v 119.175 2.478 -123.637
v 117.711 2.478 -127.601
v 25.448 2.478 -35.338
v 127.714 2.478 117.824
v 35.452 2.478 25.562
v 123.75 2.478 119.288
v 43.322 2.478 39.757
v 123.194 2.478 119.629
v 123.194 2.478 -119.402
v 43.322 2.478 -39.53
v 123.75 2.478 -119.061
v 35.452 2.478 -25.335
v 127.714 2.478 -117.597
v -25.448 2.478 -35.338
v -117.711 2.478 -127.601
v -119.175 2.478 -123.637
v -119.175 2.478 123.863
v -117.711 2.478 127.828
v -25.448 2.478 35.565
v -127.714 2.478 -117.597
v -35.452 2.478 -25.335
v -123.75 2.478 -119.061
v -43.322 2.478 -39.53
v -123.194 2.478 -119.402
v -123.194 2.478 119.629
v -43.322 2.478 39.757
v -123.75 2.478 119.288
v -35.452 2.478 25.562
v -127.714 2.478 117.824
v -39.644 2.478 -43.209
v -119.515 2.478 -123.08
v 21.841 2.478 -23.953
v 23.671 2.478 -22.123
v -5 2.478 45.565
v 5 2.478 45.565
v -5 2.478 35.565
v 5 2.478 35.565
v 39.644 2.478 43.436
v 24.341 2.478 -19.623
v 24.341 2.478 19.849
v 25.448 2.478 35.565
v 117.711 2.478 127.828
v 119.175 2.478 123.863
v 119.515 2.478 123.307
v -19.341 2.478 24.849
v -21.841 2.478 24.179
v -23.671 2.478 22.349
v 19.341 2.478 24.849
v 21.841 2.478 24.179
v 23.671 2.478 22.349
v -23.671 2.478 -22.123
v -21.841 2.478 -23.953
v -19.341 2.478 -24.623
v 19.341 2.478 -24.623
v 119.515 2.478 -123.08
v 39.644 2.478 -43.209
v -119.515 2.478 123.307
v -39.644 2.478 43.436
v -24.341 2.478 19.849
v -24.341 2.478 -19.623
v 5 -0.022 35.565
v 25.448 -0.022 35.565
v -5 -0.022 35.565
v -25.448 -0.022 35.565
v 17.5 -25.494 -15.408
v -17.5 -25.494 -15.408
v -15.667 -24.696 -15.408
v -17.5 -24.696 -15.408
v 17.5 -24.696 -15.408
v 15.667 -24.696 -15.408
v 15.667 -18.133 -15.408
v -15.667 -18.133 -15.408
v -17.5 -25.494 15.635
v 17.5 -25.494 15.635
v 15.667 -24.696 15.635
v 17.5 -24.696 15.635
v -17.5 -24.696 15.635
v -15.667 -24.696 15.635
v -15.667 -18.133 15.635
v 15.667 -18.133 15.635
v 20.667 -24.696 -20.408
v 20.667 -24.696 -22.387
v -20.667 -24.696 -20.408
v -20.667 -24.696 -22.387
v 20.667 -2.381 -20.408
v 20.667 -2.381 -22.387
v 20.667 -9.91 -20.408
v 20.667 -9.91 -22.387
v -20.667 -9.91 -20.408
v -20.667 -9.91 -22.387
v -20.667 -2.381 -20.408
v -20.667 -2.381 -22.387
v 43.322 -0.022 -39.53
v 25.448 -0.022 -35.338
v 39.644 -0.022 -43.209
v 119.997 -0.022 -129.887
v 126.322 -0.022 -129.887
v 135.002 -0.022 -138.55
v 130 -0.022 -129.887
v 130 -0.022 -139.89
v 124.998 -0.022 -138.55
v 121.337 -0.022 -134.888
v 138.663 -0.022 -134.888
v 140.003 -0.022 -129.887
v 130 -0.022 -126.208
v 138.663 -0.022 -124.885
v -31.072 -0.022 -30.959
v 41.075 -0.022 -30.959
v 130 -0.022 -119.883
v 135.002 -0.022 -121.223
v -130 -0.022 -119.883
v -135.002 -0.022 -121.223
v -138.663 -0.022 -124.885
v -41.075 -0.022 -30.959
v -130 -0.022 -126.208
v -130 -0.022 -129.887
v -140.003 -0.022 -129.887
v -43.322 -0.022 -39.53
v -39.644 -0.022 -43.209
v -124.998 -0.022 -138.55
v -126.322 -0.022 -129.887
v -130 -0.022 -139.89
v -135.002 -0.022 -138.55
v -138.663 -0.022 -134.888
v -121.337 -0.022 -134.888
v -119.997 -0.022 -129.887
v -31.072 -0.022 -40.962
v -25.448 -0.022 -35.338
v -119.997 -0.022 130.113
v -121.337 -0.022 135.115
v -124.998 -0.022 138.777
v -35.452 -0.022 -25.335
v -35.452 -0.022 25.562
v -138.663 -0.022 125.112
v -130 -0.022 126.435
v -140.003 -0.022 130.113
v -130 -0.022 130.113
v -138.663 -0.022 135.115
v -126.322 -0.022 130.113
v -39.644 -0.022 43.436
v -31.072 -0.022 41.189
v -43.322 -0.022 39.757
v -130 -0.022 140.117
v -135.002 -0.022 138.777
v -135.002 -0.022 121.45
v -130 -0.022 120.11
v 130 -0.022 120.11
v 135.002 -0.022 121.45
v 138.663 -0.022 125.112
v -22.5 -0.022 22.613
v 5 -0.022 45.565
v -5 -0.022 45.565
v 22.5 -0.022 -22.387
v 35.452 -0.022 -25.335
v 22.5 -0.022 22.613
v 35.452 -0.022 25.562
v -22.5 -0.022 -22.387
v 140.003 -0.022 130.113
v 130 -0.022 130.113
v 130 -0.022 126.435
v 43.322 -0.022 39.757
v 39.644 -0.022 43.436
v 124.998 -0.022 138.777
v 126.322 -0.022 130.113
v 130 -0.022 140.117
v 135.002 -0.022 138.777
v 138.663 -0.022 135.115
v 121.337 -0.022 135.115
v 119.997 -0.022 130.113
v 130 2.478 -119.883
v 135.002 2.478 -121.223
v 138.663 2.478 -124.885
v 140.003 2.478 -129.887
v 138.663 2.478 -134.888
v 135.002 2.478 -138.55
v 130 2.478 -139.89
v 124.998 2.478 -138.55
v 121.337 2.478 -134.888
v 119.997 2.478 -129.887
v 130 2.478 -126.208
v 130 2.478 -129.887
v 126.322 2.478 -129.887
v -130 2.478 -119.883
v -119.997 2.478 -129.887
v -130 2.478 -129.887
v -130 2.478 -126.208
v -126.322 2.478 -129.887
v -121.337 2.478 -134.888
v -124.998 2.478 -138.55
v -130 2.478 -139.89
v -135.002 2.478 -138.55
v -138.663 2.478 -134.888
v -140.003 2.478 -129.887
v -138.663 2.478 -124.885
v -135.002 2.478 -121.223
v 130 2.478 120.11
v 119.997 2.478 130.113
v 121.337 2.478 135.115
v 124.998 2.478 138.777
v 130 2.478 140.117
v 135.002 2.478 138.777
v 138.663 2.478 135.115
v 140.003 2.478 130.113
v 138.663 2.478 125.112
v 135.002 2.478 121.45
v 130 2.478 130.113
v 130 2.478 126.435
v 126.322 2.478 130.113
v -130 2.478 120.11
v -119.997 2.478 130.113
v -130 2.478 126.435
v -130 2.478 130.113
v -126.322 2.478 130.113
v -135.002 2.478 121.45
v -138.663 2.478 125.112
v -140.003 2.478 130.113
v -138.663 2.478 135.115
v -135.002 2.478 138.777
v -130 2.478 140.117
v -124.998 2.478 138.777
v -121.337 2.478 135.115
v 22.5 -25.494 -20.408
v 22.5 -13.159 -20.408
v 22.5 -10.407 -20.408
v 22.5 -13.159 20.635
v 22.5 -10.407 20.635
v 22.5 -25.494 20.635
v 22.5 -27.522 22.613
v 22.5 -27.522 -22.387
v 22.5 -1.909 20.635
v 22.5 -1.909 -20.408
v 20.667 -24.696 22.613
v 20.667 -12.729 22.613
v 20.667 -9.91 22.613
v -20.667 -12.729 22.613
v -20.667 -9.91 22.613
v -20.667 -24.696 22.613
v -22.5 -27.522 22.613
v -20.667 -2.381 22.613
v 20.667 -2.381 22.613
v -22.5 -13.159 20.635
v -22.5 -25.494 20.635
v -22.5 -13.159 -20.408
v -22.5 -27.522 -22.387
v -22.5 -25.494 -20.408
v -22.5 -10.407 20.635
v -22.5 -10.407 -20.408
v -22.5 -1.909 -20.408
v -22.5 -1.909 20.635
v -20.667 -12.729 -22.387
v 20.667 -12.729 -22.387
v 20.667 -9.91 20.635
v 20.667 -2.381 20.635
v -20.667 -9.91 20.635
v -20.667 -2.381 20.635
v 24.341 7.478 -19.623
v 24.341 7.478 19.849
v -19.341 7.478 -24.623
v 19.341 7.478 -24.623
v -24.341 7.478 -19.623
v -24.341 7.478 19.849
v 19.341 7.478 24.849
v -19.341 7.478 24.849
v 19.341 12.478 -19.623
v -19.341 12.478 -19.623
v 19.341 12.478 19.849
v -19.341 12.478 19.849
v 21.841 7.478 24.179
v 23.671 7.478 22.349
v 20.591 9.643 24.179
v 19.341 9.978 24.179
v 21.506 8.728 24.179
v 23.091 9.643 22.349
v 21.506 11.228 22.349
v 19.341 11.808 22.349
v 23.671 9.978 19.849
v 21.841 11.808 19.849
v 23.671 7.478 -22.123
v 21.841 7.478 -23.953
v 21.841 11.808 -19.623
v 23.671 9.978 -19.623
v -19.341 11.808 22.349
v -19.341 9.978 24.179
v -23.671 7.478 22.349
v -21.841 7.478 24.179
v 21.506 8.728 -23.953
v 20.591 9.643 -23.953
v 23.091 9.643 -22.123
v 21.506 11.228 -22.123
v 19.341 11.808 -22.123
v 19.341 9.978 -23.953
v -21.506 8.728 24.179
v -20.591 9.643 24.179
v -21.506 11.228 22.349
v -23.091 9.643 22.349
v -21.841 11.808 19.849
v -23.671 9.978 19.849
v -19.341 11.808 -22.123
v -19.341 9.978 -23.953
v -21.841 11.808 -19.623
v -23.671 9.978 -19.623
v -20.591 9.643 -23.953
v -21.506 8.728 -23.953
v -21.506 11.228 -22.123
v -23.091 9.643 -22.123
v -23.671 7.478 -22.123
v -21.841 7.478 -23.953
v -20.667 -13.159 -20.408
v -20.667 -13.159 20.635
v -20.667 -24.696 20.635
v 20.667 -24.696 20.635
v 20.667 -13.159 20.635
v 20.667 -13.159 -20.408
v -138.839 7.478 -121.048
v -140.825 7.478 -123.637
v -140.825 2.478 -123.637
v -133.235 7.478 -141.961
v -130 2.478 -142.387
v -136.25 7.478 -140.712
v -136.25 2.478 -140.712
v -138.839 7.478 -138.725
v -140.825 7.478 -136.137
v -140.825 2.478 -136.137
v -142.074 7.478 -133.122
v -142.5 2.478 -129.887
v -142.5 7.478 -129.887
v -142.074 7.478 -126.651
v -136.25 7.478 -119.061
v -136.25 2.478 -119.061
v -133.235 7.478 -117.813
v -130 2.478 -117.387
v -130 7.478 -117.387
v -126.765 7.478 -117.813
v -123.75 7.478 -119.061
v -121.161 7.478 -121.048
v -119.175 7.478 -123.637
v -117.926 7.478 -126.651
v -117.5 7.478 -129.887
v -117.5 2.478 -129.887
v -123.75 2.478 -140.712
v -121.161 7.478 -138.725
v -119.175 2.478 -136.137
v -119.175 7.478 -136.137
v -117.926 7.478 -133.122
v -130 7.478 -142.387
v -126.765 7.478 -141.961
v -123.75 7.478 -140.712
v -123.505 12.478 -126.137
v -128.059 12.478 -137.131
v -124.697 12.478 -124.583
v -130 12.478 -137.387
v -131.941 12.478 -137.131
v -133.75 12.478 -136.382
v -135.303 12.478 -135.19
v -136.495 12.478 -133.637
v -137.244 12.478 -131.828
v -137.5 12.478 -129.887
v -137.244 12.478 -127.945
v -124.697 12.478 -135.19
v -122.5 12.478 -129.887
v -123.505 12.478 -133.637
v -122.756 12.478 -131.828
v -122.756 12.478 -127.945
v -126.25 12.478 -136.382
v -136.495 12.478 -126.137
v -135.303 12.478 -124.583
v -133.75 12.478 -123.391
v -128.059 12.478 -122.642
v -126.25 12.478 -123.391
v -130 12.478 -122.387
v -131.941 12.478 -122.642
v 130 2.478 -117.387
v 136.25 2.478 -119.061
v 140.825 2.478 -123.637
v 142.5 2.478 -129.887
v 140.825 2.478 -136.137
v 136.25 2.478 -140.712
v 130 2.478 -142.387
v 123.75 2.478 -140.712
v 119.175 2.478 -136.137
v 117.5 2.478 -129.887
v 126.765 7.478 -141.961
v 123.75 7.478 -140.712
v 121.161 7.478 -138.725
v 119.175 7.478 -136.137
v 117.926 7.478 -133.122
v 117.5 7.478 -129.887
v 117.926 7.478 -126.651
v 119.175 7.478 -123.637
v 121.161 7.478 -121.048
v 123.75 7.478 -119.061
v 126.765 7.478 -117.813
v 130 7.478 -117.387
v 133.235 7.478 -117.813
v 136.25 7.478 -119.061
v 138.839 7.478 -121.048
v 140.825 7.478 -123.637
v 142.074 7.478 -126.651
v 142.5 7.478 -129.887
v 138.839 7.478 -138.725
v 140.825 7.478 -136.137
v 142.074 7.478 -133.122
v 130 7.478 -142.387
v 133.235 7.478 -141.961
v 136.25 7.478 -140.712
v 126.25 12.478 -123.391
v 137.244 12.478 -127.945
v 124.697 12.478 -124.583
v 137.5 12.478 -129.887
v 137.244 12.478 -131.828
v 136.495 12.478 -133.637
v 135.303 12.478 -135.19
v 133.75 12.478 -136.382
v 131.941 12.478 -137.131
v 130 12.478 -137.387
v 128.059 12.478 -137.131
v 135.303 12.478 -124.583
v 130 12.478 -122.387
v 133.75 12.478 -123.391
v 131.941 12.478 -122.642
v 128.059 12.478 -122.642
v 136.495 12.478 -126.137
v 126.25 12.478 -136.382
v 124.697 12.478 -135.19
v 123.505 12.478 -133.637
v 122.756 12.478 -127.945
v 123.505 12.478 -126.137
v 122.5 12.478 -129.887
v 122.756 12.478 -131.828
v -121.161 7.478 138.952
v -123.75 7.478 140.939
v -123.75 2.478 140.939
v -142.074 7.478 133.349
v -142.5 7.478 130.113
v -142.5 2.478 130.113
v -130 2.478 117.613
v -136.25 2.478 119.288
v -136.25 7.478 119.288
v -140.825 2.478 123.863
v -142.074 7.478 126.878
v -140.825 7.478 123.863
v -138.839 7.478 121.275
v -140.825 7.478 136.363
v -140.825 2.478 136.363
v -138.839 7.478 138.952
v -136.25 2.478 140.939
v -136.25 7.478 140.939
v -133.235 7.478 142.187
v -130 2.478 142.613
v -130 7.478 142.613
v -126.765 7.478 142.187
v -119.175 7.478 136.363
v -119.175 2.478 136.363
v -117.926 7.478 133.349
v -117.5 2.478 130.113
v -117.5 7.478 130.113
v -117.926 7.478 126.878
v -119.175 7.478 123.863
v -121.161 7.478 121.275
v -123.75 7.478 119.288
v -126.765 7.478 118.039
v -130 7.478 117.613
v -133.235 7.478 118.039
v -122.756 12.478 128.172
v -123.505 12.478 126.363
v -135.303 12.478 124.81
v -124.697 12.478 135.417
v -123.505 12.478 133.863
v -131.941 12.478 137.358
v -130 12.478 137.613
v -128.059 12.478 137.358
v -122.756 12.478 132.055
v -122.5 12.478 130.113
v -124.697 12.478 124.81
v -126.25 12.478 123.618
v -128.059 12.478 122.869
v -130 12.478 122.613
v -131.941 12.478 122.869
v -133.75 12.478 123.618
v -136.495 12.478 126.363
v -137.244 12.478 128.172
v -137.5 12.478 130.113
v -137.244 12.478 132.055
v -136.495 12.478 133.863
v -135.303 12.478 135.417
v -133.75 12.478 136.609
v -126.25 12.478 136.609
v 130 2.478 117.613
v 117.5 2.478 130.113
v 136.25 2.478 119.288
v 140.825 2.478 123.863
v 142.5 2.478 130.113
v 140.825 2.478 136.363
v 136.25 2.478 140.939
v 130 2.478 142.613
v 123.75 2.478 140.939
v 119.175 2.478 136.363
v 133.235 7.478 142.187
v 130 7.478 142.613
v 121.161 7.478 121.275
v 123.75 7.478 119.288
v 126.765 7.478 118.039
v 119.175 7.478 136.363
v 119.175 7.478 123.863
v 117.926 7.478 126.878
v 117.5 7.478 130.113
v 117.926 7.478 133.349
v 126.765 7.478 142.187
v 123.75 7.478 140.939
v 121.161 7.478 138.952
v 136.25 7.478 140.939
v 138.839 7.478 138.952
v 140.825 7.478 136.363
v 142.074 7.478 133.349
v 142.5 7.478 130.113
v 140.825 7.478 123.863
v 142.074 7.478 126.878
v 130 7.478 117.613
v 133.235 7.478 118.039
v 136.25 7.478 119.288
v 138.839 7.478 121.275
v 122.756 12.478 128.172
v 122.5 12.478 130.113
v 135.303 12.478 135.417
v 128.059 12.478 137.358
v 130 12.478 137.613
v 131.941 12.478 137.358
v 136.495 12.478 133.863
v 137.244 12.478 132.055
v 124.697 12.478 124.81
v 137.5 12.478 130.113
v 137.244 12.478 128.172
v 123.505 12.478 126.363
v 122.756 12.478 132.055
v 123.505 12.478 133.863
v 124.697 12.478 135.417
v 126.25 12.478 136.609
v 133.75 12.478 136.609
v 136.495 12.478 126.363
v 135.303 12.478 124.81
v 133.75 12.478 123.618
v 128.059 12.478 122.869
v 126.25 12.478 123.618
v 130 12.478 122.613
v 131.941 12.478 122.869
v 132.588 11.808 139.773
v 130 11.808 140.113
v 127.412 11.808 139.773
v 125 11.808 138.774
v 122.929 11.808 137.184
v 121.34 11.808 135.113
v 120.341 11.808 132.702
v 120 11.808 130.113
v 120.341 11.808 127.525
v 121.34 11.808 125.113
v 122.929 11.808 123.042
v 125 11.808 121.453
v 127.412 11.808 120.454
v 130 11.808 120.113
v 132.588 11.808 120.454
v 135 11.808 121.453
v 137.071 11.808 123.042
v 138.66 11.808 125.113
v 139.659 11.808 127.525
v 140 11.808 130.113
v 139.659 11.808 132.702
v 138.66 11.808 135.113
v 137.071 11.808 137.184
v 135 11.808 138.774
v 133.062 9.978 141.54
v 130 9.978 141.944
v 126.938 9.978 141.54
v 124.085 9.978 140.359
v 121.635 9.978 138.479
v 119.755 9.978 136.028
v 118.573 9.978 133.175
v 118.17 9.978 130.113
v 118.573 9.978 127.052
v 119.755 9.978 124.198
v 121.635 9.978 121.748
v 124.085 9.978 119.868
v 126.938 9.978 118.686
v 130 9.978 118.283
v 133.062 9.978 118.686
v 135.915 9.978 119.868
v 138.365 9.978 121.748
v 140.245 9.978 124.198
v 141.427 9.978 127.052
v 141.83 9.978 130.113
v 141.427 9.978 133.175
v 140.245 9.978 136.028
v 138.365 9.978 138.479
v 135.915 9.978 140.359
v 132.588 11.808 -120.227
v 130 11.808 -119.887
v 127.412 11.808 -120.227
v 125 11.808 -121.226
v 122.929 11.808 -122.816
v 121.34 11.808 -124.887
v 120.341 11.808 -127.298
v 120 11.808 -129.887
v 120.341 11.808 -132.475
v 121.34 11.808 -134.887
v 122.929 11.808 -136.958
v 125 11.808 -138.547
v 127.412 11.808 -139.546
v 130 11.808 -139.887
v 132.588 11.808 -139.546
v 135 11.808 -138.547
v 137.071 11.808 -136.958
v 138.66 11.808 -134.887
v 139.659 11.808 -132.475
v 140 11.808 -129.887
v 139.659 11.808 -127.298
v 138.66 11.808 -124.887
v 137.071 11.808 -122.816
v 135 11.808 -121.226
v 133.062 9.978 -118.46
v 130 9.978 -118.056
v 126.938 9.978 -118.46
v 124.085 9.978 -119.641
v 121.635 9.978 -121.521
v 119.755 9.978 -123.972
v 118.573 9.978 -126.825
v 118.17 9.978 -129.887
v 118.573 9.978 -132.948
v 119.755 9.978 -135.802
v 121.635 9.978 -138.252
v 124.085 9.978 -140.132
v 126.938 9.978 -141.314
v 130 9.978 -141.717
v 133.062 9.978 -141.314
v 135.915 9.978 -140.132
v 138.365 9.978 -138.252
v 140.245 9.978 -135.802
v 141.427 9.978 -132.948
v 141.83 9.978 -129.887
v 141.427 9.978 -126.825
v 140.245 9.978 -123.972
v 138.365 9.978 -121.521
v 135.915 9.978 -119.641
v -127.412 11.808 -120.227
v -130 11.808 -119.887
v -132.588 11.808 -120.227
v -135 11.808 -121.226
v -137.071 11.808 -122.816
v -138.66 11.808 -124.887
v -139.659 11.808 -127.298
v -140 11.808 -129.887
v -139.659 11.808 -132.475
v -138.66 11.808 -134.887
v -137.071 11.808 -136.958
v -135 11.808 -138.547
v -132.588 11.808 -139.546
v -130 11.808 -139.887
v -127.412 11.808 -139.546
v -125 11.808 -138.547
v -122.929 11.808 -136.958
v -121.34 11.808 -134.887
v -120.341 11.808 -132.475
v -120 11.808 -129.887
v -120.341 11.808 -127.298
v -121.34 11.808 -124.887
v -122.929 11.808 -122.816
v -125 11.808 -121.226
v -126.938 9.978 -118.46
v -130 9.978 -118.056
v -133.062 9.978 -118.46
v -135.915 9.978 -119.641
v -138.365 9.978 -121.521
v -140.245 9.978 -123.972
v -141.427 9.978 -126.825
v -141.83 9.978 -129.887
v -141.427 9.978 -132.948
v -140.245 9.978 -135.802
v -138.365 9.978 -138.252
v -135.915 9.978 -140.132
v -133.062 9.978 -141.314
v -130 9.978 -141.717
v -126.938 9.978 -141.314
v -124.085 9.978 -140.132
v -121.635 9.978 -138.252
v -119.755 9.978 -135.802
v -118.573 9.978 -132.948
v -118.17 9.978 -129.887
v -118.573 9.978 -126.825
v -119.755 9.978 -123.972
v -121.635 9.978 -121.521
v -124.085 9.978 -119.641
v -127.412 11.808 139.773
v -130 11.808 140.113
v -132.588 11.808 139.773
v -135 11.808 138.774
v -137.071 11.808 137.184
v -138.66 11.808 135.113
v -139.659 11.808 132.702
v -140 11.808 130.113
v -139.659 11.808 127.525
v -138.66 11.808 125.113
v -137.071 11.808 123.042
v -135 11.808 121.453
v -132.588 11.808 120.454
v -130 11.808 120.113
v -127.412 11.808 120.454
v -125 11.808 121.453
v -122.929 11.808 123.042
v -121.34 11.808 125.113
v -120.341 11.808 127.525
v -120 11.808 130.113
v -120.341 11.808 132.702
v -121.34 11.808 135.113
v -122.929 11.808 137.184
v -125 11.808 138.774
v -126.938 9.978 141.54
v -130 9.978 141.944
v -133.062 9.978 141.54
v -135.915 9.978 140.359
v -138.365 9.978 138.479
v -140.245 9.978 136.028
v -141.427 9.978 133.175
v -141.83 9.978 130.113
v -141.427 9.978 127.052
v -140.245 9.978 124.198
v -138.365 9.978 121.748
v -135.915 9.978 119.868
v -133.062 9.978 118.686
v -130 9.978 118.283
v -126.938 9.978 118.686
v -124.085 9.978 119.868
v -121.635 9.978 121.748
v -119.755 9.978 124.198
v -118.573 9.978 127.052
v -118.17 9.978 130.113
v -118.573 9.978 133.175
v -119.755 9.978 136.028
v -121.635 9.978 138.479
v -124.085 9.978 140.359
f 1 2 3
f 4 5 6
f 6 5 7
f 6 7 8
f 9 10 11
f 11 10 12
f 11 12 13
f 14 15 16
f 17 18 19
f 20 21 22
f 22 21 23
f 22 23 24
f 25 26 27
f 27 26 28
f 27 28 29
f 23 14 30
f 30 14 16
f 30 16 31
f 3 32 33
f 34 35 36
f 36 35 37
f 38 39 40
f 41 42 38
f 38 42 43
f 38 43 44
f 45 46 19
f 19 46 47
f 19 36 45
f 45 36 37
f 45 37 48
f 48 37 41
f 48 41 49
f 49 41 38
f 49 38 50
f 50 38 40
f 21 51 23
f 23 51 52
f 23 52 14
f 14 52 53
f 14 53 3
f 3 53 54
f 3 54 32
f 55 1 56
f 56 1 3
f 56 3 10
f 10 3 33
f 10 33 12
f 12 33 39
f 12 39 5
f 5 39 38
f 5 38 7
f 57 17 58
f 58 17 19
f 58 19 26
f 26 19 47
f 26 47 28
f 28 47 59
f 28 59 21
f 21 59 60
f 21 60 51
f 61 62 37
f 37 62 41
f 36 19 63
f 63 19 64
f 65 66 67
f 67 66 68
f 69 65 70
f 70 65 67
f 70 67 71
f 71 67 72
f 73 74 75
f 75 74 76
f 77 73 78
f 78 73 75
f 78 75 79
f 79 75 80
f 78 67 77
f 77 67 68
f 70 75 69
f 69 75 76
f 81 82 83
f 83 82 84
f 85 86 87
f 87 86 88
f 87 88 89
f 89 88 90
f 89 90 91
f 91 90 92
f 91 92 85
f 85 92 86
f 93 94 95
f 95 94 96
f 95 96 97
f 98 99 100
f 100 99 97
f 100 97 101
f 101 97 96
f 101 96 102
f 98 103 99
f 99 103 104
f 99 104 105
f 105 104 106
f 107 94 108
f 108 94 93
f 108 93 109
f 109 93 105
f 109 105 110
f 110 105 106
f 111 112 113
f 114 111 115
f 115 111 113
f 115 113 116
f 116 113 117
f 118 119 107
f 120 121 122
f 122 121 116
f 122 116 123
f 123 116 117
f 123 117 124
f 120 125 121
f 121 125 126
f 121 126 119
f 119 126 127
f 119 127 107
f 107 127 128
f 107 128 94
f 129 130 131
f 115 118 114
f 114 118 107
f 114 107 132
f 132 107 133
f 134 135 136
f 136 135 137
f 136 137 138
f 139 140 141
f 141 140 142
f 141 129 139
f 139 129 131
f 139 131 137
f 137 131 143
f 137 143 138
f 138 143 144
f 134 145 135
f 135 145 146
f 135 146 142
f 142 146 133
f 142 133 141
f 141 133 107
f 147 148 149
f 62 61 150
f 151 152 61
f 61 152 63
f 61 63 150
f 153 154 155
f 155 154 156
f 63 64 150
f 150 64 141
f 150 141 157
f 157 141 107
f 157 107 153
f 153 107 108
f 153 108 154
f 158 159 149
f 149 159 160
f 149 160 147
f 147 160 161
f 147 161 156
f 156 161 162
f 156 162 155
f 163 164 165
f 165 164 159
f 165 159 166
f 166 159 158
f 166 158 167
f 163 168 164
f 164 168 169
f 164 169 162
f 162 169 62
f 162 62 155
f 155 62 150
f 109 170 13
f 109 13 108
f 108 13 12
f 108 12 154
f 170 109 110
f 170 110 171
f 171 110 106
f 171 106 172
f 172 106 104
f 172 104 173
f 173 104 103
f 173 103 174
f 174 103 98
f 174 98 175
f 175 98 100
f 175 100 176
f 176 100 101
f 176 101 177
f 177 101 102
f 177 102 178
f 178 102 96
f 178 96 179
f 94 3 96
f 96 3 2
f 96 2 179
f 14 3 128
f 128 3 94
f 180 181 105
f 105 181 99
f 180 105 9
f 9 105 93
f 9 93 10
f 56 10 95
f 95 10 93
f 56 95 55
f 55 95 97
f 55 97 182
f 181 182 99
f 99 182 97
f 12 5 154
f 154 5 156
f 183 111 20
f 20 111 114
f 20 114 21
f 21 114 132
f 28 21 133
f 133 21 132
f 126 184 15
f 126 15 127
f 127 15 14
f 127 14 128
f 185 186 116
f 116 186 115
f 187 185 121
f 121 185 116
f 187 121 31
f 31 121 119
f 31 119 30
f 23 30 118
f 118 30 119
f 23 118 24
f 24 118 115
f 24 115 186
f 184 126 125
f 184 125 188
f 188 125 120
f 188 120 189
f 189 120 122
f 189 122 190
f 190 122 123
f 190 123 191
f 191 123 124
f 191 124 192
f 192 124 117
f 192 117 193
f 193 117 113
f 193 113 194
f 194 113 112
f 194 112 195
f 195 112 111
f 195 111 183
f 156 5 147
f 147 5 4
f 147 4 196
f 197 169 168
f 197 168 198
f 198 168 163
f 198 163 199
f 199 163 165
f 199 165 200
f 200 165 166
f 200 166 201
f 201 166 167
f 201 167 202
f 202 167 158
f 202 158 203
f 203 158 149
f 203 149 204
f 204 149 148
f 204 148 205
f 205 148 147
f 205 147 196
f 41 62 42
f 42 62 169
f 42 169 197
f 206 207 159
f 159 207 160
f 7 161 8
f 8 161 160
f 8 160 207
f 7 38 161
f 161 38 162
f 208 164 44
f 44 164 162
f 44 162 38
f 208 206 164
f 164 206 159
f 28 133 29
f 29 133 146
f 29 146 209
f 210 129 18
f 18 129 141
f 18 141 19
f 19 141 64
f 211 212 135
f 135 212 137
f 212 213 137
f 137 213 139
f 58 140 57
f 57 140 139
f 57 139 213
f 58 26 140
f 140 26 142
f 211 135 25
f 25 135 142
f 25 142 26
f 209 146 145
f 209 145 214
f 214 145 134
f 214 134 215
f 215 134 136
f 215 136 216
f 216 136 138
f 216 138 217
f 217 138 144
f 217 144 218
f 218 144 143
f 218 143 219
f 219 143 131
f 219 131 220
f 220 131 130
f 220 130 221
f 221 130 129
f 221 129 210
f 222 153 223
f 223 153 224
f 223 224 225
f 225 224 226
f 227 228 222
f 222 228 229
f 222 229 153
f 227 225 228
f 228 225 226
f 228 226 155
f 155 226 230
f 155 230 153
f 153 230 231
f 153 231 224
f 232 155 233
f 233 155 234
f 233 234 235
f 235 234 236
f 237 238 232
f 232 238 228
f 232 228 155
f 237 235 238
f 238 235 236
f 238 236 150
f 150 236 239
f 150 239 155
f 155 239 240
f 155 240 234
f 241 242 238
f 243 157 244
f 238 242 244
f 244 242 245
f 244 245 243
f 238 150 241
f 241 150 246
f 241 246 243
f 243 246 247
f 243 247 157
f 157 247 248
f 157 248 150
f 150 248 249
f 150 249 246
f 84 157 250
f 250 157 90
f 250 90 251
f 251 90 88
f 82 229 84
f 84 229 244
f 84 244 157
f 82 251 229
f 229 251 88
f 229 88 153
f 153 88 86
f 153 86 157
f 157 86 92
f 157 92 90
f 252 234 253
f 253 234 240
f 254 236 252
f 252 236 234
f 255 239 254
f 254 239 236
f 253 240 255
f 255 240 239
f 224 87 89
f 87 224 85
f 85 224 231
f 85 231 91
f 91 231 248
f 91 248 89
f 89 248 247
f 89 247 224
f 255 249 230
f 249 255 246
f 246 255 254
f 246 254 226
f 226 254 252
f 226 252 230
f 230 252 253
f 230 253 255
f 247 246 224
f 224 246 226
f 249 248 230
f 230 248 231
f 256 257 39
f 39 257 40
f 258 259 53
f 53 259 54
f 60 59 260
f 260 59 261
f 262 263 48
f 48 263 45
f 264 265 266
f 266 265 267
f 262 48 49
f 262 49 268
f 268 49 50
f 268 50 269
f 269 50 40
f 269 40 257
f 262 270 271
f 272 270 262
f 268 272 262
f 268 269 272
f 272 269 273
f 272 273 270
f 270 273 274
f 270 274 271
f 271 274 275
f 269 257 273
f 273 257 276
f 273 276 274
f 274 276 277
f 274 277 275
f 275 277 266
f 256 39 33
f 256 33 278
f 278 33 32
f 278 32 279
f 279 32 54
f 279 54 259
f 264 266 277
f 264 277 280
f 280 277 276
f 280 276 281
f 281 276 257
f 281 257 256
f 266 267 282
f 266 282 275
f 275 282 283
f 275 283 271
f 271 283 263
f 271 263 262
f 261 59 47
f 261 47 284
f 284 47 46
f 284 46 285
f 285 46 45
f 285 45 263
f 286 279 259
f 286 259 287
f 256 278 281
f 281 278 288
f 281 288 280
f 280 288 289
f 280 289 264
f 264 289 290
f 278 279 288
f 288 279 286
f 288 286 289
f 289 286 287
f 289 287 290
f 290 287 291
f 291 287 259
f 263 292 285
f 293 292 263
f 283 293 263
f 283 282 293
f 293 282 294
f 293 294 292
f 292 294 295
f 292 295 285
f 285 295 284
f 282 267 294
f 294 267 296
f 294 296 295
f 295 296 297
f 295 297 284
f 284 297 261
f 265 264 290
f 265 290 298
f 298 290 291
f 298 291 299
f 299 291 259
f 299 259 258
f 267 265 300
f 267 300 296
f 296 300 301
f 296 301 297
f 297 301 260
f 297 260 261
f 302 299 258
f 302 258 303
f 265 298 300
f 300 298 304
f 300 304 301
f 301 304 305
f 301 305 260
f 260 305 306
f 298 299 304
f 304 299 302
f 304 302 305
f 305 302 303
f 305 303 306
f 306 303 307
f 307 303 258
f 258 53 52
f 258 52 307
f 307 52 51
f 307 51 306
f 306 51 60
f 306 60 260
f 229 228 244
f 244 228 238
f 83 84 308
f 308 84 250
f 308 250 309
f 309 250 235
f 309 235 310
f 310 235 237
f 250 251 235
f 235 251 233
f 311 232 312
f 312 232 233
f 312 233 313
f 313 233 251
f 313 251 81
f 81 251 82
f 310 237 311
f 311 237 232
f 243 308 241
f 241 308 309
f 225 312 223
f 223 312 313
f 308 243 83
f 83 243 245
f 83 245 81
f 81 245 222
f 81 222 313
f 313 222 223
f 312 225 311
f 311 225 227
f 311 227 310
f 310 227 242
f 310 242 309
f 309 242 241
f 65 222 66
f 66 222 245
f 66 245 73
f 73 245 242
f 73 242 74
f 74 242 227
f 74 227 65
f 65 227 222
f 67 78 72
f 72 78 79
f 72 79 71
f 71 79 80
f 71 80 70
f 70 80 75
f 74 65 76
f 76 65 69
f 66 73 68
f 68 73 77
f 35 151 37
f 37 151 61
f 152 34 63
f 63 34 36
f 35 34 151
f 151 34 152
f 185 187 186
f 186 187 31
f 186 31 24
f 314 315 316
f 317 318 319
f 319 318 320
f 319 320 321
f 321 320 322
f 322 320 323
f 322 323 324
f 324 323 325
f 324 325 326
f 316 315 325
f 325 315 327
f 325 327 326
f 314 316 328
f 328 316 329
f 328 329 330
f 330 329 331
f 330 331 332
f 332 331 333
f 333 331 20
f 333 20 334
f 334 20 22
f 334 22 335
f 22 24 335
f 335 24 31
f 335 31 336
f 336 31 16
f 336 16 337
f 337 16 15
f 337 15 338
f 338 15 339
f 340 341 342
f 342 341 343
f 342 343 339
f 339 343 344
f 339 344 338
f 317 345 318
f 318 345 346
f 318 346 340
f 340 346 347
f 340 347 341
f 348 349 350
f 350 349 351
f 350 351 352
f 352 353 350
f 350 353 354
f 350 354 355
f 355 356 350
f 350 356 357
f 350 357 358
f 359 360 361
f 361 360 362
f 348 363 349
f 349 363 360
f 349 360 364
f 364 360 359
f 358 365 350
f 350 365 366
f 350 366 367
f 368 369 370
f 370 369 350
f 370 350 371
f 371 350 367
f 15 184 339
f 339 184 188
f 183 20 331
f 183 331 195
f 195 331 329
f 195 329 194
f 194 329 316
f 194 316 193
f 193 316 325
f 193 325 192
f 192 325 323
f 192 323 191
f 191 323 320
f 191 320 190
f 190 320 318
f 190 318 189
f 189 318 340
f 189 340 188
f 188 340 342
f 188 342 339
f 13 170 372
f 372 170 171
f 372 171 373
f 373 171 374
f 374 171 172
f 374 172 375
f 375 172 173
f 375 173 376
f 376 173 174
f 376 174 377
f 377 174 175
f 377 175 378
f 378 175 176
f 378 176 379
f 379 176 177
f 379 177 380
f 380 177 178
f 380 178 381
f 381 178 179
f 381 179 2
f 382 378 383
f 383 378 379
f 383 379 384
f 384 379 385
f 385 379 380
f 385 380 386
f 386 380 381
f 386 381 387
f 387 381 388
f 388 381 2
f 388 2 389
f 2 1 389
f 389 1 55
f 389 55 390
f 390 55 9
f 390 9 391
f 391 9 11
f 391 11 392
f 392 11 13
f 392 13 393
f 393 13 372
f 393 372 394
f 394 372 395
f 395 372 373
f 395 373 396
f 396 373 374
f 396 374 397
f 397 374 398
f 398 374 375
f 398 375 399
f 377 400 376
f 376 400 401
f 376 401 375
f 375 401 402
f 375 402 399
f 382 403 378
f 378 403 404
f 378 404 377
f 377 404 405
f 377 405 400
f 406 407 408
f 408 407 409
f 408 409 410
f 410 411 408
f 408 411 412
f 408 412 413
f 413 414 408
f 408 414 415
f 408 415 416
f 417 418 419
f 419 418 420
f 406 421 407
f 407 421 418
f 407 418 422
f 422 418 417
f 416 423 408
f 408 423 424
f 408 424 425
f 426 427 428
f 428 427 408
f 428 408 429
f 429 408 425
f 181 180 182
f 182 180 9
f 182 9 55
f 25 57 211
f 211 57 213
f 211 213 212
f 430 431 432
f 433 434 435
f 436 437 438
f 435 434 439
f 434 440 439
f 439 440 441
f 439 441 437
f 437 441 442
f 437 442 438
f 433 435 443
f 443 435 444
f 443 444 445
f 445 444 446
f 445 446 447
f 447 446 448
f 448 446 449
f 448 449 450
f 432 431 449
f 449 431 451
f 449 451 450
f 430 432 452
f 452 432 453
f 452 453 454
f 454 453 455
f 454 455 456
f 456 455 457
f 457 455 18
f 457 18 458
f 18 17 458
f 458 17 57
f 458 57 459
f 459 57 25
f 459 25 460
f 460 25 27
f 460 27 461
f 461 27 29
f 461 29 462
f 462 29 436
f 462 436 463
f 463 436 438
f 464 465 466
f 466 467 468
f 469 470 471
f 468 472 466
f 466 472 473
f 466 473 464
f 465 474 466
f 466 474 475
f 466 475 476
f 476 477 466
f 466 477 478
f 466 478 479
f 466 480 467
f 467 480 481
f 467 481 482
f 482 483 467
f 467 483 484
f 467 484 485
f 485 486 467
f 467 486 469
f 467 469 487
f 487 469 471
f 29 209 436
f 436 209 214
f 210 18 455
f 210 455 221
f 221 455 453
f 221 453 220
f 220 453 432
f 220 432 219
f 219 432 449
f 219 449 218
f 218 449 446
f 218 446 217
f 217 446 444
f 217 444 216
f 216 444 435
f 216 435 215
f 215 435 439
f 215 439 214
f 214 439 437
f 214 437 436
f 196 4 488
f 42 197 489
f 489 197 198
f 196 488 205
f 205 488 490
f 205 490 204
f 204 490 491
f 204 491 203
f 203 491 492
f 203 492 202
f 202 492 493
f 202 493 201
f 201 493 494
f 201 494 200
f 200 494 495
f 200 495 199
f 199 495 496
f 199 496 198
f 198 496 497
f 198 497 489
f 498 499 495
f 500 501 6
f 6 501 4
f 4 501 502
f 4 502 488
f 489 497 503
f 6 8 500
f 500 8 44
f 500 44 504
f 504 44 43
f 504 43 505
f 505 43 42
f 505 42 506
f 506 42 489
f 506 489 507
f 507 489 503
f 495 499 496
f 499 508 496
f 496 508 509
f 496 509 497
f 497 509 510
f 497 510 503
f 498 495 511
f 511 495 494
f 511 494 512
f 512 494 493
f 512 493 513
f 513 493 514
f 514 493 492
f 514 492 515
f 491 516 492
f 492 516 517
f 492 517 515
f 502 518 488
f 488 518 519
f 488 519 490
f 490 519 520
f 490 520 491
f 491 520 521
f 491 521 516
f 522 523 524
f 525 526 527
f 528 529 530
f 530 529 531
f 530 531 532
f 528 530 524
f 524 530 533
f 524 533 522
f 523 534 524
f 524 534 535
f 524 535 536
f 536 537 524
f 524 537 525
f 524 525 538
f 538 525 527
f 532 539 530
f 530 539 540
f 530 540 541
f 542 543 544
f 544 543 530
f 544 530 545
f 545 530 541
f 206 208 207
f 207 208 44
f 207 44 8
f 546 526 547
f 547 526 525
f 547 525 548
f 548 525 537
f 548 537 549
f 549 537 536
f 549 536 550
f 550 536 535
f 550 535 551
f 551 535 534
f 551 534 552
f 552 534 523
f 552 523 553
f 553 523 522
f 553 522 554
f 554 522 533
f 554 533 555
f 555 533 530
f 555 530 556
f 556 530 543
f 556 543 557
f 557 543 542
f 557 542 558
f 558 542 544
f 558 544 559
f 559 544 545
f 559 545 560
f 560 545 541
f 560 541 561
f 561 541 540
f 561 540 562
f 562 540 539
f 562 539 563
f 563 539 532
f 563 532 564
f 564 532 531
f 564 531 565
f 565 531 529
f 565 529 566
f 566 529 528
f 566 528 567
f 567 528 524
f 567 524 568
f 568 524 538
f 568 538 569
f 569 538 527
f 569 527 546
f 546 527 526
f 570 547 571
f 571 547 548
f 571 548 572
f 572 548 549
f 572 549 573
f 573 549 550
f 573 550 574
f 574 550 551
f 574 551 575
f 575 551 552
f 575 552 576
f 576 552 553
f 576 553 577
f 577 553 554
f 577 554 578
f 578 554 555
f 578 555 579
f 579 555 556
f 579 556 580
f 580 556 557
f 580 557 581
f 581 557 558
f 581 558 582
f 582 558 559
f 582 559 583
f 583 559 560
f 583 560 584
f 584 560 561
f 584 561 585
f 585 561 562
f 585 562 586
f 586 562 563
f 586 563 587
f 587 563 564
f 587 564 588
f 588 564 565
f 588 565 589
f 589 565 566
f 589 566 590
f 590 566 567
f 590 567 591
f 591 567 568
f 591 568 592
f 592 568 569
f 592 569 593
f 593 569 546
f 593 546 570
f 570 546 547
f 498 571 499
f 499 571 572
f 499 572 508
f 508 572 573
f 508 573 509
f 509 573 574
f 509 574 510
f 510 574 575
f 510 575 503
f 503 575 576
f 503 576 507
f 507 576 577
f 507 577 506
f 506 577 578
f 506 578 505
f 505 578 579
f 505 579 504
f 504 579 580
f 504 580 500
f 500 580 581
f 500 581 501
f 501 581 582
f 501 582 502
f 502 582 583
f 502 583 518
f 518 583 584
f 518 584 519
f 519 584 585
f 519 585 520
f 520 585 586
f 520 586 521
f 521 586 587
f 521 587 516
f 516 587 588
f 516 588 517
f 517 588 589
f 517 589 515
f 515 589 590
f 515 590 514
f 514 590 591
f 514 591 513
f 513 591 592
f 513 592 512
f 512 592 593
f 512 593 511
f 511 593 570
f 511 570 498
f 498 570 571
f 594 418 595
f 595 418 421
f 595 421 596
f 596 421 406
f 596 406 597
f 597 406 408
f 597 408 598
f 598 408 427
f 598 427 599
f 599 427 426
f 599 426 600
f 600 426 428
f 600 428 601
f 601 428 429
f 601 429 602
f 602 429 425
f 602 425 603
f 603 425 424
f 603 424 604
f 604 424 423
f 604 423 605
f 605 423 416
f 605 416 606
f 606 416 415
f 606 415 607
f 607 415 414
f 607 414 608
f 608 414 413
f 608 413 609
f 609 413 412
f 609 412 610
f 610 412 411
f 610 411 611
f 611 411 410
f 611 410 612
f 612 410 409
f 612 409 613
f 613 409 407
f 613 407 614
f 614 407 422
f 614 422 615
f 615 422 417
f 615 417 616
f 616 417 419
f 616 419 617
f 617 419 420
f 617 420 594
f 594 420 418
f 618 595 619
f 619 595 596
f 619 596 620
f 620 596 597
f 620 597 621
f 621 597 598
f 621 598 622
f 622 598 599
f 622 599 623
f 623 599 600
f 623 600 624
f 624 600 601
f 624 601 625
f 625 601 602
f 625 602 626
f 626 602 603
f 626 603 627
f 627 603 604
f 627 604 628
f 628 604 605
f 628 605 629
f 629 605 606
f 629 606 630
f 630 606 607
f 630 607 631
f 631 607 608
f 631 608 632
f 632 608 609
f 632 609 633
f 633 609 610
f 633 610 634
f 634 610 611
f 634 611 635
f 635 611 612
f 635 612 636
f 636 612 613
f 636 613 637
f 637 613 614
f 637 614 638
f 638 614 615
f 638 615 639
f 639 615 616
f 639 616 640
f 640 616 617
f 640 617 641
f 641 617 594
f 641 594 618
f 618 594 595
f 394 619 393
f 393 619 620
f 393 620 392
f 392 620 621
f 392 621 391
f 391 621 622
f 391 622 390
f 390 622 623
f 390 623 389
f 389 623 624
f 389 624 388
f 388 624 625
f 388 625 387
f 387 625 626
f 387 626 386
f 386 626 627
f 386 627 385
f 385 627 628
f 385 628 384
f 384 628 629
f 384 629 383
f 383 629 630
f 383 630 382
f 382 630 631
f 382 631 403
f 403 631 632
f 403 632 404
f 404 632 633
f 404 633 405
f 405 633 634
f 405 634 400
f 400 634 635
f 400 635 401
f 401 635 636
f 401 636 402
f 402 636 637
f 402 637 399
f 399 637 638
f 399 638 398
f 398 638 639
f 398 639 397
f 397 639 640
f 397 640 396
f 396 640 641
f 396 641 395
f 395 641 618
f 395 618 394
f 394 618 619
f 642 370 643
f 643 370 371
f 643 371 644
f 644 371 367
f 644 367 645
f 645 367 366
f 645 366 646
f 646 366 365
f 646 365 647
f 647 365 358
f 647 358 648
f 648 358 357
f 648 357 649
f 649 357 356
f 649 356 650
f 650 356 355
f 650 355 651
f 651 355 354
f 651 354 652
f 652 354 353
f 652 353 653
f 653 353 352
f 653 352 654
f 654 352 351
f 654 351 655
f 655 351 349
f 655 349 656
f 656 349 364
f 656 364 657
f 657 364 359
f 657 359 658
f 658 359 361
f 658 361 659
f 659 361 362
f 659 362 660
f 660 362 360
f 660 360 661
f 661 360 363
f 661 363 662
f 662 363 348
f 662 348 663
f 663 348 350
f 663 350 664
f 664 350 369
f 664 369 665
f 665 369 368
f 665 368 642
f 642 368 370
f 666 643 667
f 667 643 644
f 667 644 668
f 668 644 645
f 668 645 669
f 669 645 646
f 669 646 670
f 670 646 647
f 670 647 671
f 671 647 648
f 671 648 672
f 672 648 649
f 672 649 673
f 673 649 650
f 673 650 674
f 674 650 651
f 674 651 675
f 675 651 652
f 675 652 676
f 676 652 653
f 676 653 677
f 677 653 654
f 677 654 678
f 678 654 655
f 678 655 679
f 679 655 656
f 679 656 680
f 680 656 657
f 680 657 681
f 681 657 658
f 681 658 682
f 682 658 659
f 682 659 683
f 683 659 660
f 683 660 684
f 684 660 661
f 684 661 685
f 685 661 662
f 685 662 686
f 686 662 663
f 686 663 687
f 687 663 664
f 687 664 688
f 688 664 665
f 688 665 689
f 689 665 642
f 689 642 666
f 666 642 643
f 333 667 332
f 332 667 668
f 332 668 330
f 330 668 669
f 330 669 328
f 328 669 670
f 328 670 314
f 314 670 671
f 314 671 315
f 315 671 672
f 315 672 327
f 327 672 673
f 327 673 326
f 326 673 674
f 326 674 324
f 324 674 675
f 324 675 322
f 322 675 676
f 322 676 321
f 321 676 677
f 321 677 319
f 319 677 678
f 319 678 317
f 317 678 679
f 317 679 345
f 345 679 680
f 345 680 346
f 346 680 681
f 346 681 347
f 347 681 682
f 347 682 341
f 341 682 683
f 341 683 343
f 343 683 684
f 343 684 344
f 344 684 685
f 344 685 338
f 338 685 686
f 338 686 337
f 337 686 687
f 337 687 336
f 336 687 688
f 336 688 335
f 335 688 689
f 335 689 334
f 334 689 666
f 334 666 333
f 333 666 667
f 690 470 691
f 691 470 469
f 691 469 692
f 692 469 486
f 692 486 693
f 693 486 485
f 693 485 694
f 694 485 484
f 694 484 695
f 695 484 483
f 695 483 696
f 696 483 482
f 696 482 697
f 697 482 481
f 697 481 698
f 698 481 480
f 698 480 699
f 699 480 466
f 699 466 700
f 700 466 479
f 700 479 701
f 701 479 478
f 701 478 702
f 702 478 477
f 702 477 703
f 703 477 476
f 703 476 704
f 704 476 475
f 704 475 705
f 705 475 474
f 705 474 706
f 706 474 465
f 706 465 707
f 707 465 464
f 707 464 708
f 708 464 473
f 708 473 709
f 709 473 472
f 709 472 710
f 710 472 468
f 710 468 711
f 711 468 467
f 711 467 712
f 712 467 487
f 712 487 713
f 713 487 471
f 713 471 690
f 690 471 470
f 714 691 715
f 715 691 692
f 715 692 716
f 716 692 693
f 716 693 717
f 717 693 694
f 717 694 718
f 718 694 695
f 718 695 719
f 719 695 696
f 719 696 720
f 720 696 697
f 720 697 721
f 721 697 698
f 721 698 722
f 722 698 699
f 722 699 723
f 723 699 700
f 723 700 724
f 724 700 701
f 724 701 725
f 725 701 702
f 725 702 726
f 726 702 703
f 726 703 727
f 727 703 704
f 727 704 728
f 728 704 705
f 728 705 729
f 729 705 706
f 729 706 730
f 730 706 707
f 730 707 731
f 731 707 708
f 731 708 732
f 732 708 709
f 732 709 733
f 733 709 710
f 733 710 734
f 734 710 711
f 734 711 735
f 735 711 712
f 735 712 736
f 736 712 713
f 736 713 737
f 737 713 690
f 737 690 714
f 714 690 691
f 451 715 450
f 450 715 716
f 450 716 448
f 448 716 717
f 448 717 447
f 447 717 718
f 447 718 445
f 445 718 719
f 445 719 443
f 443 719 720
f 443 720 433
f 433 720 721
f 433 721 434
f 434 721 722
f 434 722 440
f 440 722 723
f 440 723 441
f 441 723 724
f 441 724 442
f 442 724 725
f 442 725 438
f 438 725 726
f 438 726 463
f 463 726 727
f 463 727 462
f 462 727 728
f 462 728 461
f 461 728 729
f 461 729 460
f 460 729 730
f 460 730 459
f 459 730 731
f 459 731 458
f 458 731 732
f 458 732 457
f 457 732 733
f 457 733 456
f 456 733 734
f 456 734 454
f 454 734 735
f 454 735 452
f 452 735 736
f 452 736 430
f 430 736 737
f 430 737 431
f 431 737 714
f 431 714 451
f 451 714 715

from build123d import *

# Parameters (mm, degrees)
EXTRUDE_1_DEPTH     = 5
SKETCH_2_W          = 90
SKETCH_2_H          = 90
EXTRUDE_2_DEPTH     = 25
SKETCH_3_W          = 82.667839838
SKETCH_3_H          = 15.058257345
CUT_EXTRUDE_1_DEPTH = 90
SKETCH_4_W          = 82.085695662
SKETCH_4_H          = 16.995101666
CUT_EXTRUDE_2_DEPTH = 90
SKETCH_5_W          = 97.364780094
SKETCH_5_H          = 98.94366842
EXTRUDE_3_DEPTH     = 20
FILLET_1_R          = 10
SKETCH_6_W          = 90
SKETCH_6_H          = 90
EXTRUDE_4_DEPTH     = 30
CUT_EXTRUDE_3_DEPTH = 90
SKETCH_8_W          = 62.667839838
SKETCH_8_H          = 13.124346315
CUT_EXTRUDE_4_DEPTH = 10
CUT_EXTRUDE_5_DEPTH = 90
SKETCH_10_W         = 62.085695662
SKETCH_10_H         = 21.626220655
CUT_EXTRUDE_6_DEPTH = 10
SKETCH_11_W         = 62.667839838
SKETCH_11_H         = 13.124346315
CUT_EXTRUDE_7_DEPTH = 10
SKETCH_12_W         = 62.085695662
SKETCH_12_H         = 21.626220655
CUT_EXTRUDE_8_DEPTH = 10
EXTRUDE_5_DEPTH     = 20
SKETCH_14_R         = 25
EXTRUDE_6_DEPTH     = 20
FILLET_2_R          = 10
SCALE_1_SCALE       = 0.5


with BuildPart() as part:
    # 草图1 → 凸台-拉伸1 (new body)
    with BuildSketch(Plane(origin=(0, 0, 0), x_dir=(1, 0, 0), z_dir=(0, 1, 0))):
        Polygon((0, 70.903454713), (0, 0), (70.90345471, 0), (70.90345471, 50.896669322), (70.90345471, 63.546624398), (70.90345471, 70.903454713), (63.546624395, 70.903454713), (50.896669319, 70.903454713), align=None)
        Polygon((72.962659229, 92.969444623), (50.896669319, 70.903454713), (63.546624395, 70.903454713), (79.287636767, 86.644467085), align=None)
        Polygon((70.90345471, 70.903454713), (70.90345471, 63.546624398), (86.644467082, 79.28763677), (79.287636767, 86.644467085), (63.546624395, 70.903454713), align=None)
        Polygon((70.90345471, 63.546624398), (70.90345471, 50.896669322), (92.96944462, 72.962659232), (86.644467082, 79.28763677), align=None)
        with BuildLine():
            ThreePointArc((242.661241038, 250.018071355), (240.67172678, 254.833829646), (239.993214606, 260))
            Line((239.993214606, 260), (72.962659229, 92.969444623))
            Line((72.962659229, 92.969444623), (79.287636767, 86.644467085))
            Line((79.287636767, 86.644467085), (242.661241038, 250.018071355))
        make_face()
        with BuildLine():
            Line((92.96944462, 72.962659232), (260, 239.993214612))
            ThreePointArc((260, 239.993214606), (254.833829644, 240.67172678), (250.018071352, 242.66124104))
            Line((250.018071352, 242.66124104), (86.644467082, 79.28763677))
            Line((86.644467082, 79.28763677), (92.96944462, 72.962659232))
        make_face()
        with BuildLine():
            Line((260, 252.643169688), (260, 239.993214612))
            ThreePointArc((260, 239.993214606), (274.146933622, 245.853066378), (280.006785394, 260))
            ThreePointArc((280.006785394, 260), (260, 280.006785394), (239.993214606, 260))
            Line((239.993214606, 260), (252.643169682, 260))
            Line((252.643169682, 260), (260, 260))
            Line((260, 260), (260, 252.643169688))
        make_face()
        with BuildLine():
            Line((252.643169682, 260), (239.993214606, 260))
            ThreePointArc((239.993214606, 260), (240.67172678, 254.833829646), (242.661241038, 250.018071355))
            Line((242.661241038, 250.018071355), (252.643169682, 260))
        make_face()
        with BuildLine():
            ThreePointArc((250.018071352, 242.66124104), (254.833829644, 240.67172678), (260, 239.993214606))
            Line((260, 239.993214612), (260, 252.643169688))
            Line((260, 252.643169688), (250.018071352, 242.66124104))
        make_face()
    extrude_1 = extrude(amount=EXTRUDE_1_DEPTH)

    # 镜向1: 凸台-拉伸1 across plane
    add(extrude_1.mirror(Plane(origin=(0, 5, 0), x_dir=(0, 0, 1), z_dir=(1, 0, 0))))

    # 镜向3: part across plane


with BuildPart() as part_1:
    add(part.part)
    add(part.part.mirror(Plane(origin=(0, 5, 0), x_dir=(1, 0, 0), z_dir=(0, 0, -1))))

    # 草图2 → 凸台-拉伸2 (add)
    with BuildSketch(Plane.XZ):
        Rectangle(SKETCH_2_W, SKETCH_2_H)
    extrude(amount=EXTRUDE_2_DEPTH)

    # 草图3 → 切除-拉伸1 (cut)
    with BuildSketch(Plane.XY.offset(45)):
        with Locations((0, -12.246888496)):
            Rectangle(SKETCH_3_W, SKETCH_3_H)
    extrude(amount=-CUT_EXTRUDE_1_DEPTH, mode=Mode.SUBTRACT)

    # 草图4 → 切除-拉伸2 (cut)
    with BuildSketch(Plane(origin=(45, 0, 0), x_dir=(0, 0, -1), z_dir=(1, 0, 0))):
        with Locations((0, -12.272398252)):
            Rectangle(SKETCH_4_W, SKETCH_4_H)
    extrude(amount=-CUT_EXTRUDE_2_DEPTH, mode=Mode.SUBTRACT)

    # 草图5 → 凸台-拉伸3 (add)
    with BuildSketch(Plane(origin=(0, 5, 0), x_dir=(1, 0, 0), z_dir=(0, 1, 0))):
        Rectangle(SKETCH_5_W, SKETCH_5_H)
    extrude(amount=EXTRUDE_3_DEPTH)

    # 圆角1
    fillet_1_edges = [part_1.edges().sort_by_distance(p)[0] for p in [
        (48.682390047, 15, 49.47183421),
        (48.682390047, 15, -49.47183421),
        (-48.682390047, 15, -49.47183421),
        (-48.682390047, 15, 49.47183421),
        (48.682390047, 25, 0),
        (0, 25, -49.47183421),
        (-48.682390047, 25, 0),
        (0, 25, 49.47183421),
    ]]
    fillet(fillet_1_edges, radius=FILLET_1_R)

    # 草图6 → 凸台-拉伸4 (add)
    with BuildSketch(Plane.XZ.offset(25)):
        Rectangle(SKETCH_6_W, SKETCH_6_H)
    extrude(amount=EXTRUDE_4_DEPTH)

    # 草图7 → 切除-拉伸3 (cut)
    with BuildSketch(Plane.XY.offset(45)):
        Polygon((-41.333919919, -25.414932676), (41.333919919, -25.414932676), (41.333919919, -49.347564191), (31.333919919, -49.347564191), (31.333919919, -36.223217876), (-31.333919919, -36.223217876), (-31.333919919, -49.347564191), (-41.333919919, -49.347564191), align=None)
    extrude(amount=-CUT_EXTRUDE_3_DEPTH, mode=Mode.SUBTRACT)

    # 草图8 → 切除-拉伸4 (cut)
    with BuildSketch(Plane.XY.offset(45)):
        with Locations((0, -42.785391034)):
            Rectangle(SKETCH_8_W, SKETCH_8_H)
    extrude(amount=-CUT_EXTRUDE_4_DEPTH, mode=Mode.SUBTRACT)

    # 草图9 → 切除-拉伸5 (cut)
    with BuildSketch(Plane(origin=(45, 0, 0), x_dir=(0, 0, -1), z_dir=(1, 0, 0))):
        Polygon((-41.042847831, -26.273596919), (-41.042847831, -50.943507888), (-31.042847831, -50.943507888), (-31.042847831, -29.317287233), (31.042847831, -29.317287233), (31.042847831, -50.943507888), (41.042847831, -50.943507888), (41.042847831, -26.273596919), align=None)
    extrude(amount=-CUT_EXTRUDE_5_DEPTH, mode=Mode.SUBTRACT)

    # 草图10 → 切除-拉伸6 (cut)
    with BuildSketch(Plane(origin=(45, 0, 0), x_dir=(0, 0, -1), z_dir=(1, 0, 0))):
        with Locations((0, -40.130397561)):
            Rectangle(SKETCH_10_W, SKETCH_10_H)
    extrude(amount=-CUT_EXTRUDE_6_DEPTH, mode=Mode.SUBTRACT)

    # 草图11 → 切除-拉伸7 (cut)
    with BuildSketch(Plane(origin=(0, 0, -45), x_dir=(-1, 0, 0), z_dir=(0, 0, -1))):
        with Locations((0, -42.785391034)):
            Rectangle(SKETCH_11_W, SKETCH_11_H)
    extrude(amount=-CUT_EXTRUDE_7_DEPTH, mode=Mode.SUBTRACT)

    # 草图12 → 切除-拉伸8 (cut)
    with BuildSketch(Plane.ZY.offset(45)):
        with Locations((0, -40.130397561)):
            Rectangle(SKETCH_12_W, SKETCH_12_H)
    extrude(amount=-CUT_EXTRUDE_8_DEPTH, mode=Mode.SUBTRACT)

    # 草图13 → 凸台-拉伸5 (add)
    with BuildSketch(Plane.XY.offset(70.903454713)):
        Polygon((0, 0), (-10, 0), (-10, 5), (10, 5), (10, 0), align=None)
    extrude(amount=EXTRUDE_5_DEPTH)

    # 草图14 → 凸台-拉伸6 (add)
    with BuildSketch(Plane(origin=(0, 5, 0), x_dir=(1, 0, 0), z_dir=(0, 1, 0))):
        with Locations(Location((-260, 260, 0), (0, 0, 349.463237906))):
            Circle(SKETCH_14_R)
        with Locations(Location((260, 260, 0), (0, 0, 190.536762094))):
            Circle(SKETCH_14_R)
        with Locations(Location((-260, -260, 0), (0, 0, 79.463237895))):
            Circle(SKETCH_14_R)
        with Locations(Location((260, -260, 0), (0, 0, 100.536762105))):
            Circle(SKETCH_14_R)
    extrude(amount=EXTRUDE_6_DEPTH)

    # 圆角2
    fillet_2_edges = [part_1.edges().sort_by_distance(p)[0] for p in [
        (-284.578444482, 25, -264.571659088),
        (284.578444482, 25, -264.571659088),
        (-264.571659093, 25, 284.578444482),
        (264.571659093, 25, 284.578444482),
    ]]
    fillet(fillet_2_edges, radius=FILLET_2_R)


with BuildPart() as part_2:
    # 缩放比例1: scaled about (0, -0.043580376, 0.226767714)
    add(part_1.part.scale(SCALE_1_SCALE).moved(Location((0, -0.021790188, 0.113383857))))


solid = part_2.part
